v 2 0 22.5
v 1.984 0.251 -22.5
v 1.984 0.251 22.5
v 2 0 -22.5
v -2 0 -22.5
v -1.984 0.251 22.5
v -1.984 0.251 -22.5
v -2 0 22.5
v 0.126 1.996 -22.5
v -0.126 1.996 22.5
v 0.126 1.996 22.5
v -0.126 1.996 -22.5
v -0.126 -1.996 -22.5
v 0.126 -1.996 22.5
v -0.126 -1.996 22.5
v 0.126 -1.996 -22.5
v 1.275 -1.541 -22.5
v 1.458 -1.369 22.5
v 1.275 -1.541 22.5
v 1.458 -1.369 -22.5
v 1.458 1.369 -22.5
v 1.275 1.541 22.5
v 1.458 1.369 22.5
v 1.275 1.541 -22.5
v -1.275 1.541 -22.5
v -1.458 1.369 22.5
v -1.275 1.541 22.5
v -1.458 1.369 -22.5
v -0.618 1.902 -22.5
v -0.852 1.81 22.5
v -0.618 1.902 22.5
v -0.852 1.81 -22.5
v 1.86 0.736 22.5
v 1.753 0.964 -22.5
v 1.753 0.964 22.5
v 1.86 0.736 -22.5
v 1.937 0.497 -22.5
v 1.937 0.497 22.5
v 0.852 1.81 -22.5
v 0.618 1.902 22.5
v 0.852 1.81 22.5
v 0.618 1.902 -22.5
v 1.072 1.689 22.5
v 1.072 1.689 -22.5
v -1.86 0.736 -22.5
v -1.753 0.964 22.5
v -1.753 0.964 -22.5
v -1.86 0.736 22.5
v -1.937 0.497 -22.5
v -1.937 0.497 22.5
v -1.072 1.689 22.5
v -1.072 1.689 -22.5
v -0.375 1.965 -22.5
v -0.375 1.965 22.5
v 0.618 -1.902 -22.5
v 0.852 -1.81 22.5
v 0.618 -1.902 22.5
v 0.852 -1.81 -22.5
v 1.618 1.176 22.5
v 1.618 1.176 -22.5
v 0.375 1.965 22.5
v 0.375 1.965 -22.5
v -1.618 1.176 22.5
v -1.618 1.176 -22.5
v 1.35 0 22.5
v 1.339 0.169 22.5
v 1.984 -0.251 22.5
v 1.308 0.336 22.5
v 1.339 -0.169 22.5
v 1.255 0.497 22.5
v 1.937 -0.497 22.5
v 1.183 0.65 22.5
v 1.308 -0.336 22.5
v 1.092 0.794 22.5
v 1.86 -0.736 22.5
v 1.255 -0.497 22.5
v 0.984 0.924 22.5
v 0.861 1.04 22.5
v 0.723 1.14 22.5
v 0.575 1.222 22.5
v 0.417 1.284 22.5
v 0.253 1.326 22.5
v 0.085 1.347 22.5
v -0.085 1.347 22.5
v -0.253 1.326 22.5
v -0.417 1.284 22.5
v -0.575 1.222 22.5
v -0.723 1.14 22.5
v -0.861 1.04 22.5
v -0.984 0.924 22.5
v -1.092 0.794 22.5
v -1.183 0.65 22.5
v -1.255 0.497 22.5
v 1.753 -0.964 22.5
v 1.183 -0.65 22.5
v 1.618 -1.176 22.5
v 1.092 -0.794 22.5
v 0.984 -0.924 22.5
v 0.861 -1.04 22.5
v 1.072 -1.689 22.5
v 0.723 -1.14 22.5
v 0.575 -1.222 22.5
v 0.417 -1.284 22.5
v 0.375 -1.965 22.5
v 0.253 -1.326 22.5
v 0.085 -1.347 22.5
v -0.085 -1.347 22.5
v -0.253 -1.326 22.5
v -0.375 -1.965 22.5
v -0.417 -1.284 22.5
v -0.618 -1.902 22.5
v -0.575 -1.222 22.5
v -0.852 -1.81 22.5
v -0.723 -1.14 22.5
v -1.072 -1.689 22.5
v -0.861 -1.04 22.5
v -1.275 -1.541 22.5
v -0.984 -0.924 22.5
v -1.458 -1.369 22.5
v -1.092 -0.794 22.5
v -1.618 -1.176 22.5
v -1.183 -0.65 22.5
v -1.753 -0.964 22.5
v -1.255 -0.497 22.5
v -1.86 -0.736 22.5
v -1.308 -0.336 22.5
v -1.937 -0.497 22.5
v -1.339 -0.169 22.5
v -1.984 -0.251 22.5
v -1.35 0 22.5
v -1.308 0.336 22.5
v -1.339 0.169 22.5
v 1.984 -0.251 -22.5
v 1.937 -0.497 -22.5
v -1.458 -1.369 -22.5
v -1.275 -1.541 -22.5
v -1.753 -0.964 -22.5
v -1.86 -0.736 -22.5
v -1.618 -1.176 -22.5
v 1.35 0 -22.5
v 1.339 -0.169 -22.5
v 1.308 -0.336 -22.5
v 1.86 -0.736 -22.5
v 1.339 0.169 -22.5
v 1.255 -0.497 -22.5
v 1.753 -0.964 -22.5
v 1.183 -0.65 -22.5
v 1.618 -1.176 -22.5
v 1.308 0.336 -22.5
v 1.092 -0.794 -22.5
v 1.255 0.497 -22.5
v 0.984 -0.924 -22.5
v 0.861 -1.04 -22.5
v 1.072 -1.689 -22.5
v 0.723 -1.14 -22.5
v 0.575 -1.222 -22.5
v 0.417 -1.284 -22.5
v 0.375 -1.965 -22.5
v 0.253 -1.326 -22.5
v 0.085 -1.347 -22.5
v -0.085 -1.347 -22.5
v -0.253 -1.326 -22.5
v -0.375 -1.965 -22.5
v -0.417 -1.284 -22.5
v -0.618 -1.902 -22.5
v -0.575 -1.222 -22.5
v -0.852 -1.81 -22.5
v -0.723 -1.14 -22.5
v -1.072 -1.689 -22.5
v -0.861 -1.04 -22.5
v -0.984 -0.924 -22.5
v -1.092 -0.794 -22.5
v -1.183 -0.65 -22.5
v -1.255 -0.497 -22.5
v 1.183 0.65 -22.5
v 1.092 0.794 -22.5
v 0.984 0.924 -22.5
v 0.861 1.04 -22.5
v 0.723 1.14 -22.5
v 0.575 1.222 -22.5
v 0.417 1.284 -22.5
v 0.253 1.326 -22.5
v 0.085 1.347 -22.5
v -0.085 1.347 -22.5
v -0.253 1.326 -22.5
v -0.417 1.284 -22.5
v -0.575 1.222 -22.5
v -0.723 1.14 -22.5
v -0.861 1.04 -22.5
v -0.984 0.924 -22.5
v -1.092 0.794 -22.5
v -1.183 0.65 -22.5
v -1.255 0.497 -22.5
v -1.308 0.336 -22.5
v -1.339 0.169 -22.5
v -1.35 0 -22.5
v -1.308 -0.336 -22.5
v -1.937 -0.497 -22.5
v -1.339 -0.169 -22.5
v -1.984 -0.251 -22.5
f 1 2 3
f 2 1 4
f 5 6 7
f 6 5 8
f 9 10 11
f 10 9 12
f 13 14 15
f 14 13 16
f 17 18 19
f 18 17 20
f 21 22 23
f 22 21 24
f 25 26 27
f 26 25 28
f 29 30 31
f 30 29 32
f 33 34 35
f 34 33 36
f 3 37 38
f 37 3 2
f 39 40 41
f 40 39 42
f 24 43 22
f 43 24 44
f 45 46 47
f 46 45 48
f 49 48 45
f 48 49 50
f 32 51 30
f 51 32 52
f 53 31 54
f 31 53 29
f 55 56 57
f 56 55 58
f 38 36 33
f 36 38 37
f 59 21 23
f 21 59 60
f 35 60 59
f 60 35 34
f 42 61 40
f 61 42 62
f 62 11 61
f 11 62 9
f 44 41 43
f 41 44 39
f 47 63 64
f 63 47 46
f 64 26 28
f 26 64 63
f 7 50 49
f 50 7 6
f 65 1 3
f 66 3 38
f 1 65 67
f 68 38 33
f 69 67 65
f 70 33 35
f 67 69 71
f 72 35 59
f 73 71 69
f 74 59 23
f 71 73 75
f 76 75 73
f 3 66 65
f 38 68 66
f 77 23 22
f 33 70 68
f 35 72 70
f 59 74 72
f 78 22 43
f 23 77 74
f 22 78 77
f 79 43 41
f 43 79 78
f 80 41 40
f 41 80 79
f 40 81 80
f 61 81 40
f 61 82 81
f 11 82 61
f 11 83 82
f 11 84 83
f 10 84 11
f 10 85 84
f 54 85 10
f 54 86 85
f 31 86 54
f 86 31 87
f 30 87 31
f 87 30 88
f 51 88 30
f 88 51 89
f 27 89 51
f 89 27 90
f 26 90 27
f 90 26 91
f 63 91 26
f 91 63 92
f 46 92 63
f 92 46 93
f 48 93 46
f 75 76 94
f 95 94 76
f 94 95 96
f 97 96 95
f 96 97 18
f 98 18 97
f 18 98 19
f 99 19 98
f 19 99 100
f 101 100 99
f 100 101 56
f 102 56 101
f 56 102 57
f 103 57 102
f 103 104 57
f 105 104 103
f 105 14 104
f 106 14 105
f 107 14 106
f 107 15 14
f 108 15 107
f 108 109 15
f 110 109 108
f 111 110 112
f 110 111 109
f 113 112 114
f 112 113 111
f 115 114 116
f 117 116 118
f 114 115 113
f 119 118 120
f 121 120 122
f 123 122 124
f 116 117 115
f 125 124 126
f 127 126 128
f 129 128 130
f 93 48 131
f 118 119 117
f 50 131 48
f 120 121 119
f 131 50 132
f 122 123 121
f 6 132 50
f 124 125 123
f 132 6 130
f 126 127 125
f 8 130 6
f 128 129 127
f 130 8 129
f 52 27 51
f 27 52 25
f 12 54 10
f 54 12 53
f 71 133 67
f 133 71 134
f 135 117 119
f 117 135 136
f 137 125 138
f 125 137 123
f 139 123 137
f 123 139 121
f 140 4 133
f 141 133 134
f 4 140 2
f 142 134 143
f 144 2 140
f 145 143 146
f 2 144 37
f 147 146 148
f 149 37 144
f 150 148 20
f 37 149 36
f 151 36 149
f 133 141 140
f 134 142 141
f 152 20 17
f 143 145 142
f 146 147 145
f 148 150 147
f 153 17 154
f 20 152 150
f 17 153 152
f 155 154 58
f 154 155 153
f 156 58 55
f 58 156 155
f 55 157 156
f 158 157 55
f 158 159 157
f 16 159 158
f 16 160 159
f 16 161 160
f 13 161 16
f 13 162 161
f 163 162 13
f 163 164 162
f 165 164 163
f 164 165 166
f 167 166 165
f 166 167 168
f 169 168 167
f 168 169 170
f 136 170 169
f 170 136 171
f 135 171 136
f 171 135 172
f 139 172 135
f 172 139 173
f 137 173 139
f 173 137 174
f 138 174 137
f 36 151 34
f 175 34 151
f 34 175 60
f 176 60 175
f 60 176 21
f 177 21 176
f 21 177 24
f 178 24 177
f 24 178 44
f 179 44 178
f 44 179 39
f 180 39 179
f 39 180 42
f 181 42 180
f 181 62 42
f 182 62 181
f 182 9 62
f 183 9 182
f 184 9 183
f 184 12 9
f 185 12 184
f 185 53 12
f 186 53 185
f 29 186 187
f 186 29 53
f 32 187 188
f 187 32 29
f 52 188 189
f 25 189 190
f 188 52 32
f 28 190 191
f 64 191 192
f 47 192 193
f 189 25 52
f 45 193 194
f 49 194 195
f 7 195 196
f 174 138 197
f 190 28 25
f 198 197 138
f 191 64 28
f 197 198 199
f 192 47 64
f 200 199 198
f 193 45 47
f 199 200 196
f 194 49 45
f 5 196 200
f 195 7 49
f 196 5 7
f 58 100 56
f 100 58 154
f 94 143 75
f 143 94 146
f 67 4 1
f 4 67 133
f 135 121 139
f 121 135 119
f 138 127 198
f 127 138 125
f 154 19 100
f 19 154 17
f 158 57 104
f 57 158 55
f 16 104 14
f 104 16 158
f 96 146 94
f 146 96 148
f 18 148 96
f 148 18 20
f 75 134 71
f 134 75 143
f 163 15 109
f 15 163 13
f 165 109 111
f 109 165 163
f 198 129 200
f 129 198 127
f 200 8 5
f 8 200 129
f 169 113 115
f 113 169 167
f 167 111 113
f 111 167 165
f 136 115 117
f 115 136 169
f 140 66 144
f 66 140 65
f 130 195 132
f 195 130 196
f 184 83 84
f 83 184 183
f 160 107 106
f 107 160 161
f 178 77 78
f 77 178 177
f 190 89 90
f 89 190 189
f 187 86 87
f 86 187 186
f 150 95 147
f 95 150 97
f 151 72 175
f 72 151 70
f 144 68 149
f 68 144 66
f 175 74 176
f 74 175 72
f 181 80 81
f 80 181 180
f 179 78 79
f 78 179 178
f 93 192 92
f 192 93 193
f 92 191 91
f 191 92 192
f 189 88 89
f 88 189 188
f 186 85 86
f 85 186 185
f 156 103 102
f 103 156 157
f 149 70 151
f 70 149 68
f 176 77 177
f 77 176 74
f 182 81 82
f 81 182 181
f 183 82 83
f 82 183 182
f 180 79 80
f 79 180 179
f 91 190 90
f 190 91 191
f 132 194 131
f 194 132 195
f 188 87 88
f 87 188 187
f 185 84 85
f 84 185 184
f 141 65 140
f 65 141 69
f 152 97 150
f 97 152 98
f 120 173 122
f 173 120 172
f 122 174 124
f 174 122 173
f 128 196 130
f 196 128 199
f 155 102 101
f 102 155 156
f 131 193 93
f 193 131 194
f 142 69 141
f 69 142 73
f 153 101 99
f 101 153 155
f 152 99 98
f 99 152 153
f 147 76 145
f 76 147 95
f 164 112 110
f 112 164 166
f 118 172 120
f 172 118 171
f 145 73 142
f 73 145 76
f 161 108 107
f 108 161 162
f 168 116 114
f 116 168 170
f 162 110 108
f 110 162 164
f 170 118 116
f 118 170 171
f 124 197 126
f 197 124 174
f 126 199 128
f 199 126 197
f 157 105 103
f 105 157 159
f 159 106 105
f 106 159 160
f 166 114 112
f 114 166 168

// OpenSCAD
$fn = 50;


difference() {
	union() {
		translate(v = [0, 0, -22.5000000000]) {
			cylinder(h = 45, r = 2.0000000000);
		}
	}
	union() {
		translate(v = [0, 0, -100.0000000000]) {
			cylinder(h = 200, r = 1.3500000000);
		}
	}
}
